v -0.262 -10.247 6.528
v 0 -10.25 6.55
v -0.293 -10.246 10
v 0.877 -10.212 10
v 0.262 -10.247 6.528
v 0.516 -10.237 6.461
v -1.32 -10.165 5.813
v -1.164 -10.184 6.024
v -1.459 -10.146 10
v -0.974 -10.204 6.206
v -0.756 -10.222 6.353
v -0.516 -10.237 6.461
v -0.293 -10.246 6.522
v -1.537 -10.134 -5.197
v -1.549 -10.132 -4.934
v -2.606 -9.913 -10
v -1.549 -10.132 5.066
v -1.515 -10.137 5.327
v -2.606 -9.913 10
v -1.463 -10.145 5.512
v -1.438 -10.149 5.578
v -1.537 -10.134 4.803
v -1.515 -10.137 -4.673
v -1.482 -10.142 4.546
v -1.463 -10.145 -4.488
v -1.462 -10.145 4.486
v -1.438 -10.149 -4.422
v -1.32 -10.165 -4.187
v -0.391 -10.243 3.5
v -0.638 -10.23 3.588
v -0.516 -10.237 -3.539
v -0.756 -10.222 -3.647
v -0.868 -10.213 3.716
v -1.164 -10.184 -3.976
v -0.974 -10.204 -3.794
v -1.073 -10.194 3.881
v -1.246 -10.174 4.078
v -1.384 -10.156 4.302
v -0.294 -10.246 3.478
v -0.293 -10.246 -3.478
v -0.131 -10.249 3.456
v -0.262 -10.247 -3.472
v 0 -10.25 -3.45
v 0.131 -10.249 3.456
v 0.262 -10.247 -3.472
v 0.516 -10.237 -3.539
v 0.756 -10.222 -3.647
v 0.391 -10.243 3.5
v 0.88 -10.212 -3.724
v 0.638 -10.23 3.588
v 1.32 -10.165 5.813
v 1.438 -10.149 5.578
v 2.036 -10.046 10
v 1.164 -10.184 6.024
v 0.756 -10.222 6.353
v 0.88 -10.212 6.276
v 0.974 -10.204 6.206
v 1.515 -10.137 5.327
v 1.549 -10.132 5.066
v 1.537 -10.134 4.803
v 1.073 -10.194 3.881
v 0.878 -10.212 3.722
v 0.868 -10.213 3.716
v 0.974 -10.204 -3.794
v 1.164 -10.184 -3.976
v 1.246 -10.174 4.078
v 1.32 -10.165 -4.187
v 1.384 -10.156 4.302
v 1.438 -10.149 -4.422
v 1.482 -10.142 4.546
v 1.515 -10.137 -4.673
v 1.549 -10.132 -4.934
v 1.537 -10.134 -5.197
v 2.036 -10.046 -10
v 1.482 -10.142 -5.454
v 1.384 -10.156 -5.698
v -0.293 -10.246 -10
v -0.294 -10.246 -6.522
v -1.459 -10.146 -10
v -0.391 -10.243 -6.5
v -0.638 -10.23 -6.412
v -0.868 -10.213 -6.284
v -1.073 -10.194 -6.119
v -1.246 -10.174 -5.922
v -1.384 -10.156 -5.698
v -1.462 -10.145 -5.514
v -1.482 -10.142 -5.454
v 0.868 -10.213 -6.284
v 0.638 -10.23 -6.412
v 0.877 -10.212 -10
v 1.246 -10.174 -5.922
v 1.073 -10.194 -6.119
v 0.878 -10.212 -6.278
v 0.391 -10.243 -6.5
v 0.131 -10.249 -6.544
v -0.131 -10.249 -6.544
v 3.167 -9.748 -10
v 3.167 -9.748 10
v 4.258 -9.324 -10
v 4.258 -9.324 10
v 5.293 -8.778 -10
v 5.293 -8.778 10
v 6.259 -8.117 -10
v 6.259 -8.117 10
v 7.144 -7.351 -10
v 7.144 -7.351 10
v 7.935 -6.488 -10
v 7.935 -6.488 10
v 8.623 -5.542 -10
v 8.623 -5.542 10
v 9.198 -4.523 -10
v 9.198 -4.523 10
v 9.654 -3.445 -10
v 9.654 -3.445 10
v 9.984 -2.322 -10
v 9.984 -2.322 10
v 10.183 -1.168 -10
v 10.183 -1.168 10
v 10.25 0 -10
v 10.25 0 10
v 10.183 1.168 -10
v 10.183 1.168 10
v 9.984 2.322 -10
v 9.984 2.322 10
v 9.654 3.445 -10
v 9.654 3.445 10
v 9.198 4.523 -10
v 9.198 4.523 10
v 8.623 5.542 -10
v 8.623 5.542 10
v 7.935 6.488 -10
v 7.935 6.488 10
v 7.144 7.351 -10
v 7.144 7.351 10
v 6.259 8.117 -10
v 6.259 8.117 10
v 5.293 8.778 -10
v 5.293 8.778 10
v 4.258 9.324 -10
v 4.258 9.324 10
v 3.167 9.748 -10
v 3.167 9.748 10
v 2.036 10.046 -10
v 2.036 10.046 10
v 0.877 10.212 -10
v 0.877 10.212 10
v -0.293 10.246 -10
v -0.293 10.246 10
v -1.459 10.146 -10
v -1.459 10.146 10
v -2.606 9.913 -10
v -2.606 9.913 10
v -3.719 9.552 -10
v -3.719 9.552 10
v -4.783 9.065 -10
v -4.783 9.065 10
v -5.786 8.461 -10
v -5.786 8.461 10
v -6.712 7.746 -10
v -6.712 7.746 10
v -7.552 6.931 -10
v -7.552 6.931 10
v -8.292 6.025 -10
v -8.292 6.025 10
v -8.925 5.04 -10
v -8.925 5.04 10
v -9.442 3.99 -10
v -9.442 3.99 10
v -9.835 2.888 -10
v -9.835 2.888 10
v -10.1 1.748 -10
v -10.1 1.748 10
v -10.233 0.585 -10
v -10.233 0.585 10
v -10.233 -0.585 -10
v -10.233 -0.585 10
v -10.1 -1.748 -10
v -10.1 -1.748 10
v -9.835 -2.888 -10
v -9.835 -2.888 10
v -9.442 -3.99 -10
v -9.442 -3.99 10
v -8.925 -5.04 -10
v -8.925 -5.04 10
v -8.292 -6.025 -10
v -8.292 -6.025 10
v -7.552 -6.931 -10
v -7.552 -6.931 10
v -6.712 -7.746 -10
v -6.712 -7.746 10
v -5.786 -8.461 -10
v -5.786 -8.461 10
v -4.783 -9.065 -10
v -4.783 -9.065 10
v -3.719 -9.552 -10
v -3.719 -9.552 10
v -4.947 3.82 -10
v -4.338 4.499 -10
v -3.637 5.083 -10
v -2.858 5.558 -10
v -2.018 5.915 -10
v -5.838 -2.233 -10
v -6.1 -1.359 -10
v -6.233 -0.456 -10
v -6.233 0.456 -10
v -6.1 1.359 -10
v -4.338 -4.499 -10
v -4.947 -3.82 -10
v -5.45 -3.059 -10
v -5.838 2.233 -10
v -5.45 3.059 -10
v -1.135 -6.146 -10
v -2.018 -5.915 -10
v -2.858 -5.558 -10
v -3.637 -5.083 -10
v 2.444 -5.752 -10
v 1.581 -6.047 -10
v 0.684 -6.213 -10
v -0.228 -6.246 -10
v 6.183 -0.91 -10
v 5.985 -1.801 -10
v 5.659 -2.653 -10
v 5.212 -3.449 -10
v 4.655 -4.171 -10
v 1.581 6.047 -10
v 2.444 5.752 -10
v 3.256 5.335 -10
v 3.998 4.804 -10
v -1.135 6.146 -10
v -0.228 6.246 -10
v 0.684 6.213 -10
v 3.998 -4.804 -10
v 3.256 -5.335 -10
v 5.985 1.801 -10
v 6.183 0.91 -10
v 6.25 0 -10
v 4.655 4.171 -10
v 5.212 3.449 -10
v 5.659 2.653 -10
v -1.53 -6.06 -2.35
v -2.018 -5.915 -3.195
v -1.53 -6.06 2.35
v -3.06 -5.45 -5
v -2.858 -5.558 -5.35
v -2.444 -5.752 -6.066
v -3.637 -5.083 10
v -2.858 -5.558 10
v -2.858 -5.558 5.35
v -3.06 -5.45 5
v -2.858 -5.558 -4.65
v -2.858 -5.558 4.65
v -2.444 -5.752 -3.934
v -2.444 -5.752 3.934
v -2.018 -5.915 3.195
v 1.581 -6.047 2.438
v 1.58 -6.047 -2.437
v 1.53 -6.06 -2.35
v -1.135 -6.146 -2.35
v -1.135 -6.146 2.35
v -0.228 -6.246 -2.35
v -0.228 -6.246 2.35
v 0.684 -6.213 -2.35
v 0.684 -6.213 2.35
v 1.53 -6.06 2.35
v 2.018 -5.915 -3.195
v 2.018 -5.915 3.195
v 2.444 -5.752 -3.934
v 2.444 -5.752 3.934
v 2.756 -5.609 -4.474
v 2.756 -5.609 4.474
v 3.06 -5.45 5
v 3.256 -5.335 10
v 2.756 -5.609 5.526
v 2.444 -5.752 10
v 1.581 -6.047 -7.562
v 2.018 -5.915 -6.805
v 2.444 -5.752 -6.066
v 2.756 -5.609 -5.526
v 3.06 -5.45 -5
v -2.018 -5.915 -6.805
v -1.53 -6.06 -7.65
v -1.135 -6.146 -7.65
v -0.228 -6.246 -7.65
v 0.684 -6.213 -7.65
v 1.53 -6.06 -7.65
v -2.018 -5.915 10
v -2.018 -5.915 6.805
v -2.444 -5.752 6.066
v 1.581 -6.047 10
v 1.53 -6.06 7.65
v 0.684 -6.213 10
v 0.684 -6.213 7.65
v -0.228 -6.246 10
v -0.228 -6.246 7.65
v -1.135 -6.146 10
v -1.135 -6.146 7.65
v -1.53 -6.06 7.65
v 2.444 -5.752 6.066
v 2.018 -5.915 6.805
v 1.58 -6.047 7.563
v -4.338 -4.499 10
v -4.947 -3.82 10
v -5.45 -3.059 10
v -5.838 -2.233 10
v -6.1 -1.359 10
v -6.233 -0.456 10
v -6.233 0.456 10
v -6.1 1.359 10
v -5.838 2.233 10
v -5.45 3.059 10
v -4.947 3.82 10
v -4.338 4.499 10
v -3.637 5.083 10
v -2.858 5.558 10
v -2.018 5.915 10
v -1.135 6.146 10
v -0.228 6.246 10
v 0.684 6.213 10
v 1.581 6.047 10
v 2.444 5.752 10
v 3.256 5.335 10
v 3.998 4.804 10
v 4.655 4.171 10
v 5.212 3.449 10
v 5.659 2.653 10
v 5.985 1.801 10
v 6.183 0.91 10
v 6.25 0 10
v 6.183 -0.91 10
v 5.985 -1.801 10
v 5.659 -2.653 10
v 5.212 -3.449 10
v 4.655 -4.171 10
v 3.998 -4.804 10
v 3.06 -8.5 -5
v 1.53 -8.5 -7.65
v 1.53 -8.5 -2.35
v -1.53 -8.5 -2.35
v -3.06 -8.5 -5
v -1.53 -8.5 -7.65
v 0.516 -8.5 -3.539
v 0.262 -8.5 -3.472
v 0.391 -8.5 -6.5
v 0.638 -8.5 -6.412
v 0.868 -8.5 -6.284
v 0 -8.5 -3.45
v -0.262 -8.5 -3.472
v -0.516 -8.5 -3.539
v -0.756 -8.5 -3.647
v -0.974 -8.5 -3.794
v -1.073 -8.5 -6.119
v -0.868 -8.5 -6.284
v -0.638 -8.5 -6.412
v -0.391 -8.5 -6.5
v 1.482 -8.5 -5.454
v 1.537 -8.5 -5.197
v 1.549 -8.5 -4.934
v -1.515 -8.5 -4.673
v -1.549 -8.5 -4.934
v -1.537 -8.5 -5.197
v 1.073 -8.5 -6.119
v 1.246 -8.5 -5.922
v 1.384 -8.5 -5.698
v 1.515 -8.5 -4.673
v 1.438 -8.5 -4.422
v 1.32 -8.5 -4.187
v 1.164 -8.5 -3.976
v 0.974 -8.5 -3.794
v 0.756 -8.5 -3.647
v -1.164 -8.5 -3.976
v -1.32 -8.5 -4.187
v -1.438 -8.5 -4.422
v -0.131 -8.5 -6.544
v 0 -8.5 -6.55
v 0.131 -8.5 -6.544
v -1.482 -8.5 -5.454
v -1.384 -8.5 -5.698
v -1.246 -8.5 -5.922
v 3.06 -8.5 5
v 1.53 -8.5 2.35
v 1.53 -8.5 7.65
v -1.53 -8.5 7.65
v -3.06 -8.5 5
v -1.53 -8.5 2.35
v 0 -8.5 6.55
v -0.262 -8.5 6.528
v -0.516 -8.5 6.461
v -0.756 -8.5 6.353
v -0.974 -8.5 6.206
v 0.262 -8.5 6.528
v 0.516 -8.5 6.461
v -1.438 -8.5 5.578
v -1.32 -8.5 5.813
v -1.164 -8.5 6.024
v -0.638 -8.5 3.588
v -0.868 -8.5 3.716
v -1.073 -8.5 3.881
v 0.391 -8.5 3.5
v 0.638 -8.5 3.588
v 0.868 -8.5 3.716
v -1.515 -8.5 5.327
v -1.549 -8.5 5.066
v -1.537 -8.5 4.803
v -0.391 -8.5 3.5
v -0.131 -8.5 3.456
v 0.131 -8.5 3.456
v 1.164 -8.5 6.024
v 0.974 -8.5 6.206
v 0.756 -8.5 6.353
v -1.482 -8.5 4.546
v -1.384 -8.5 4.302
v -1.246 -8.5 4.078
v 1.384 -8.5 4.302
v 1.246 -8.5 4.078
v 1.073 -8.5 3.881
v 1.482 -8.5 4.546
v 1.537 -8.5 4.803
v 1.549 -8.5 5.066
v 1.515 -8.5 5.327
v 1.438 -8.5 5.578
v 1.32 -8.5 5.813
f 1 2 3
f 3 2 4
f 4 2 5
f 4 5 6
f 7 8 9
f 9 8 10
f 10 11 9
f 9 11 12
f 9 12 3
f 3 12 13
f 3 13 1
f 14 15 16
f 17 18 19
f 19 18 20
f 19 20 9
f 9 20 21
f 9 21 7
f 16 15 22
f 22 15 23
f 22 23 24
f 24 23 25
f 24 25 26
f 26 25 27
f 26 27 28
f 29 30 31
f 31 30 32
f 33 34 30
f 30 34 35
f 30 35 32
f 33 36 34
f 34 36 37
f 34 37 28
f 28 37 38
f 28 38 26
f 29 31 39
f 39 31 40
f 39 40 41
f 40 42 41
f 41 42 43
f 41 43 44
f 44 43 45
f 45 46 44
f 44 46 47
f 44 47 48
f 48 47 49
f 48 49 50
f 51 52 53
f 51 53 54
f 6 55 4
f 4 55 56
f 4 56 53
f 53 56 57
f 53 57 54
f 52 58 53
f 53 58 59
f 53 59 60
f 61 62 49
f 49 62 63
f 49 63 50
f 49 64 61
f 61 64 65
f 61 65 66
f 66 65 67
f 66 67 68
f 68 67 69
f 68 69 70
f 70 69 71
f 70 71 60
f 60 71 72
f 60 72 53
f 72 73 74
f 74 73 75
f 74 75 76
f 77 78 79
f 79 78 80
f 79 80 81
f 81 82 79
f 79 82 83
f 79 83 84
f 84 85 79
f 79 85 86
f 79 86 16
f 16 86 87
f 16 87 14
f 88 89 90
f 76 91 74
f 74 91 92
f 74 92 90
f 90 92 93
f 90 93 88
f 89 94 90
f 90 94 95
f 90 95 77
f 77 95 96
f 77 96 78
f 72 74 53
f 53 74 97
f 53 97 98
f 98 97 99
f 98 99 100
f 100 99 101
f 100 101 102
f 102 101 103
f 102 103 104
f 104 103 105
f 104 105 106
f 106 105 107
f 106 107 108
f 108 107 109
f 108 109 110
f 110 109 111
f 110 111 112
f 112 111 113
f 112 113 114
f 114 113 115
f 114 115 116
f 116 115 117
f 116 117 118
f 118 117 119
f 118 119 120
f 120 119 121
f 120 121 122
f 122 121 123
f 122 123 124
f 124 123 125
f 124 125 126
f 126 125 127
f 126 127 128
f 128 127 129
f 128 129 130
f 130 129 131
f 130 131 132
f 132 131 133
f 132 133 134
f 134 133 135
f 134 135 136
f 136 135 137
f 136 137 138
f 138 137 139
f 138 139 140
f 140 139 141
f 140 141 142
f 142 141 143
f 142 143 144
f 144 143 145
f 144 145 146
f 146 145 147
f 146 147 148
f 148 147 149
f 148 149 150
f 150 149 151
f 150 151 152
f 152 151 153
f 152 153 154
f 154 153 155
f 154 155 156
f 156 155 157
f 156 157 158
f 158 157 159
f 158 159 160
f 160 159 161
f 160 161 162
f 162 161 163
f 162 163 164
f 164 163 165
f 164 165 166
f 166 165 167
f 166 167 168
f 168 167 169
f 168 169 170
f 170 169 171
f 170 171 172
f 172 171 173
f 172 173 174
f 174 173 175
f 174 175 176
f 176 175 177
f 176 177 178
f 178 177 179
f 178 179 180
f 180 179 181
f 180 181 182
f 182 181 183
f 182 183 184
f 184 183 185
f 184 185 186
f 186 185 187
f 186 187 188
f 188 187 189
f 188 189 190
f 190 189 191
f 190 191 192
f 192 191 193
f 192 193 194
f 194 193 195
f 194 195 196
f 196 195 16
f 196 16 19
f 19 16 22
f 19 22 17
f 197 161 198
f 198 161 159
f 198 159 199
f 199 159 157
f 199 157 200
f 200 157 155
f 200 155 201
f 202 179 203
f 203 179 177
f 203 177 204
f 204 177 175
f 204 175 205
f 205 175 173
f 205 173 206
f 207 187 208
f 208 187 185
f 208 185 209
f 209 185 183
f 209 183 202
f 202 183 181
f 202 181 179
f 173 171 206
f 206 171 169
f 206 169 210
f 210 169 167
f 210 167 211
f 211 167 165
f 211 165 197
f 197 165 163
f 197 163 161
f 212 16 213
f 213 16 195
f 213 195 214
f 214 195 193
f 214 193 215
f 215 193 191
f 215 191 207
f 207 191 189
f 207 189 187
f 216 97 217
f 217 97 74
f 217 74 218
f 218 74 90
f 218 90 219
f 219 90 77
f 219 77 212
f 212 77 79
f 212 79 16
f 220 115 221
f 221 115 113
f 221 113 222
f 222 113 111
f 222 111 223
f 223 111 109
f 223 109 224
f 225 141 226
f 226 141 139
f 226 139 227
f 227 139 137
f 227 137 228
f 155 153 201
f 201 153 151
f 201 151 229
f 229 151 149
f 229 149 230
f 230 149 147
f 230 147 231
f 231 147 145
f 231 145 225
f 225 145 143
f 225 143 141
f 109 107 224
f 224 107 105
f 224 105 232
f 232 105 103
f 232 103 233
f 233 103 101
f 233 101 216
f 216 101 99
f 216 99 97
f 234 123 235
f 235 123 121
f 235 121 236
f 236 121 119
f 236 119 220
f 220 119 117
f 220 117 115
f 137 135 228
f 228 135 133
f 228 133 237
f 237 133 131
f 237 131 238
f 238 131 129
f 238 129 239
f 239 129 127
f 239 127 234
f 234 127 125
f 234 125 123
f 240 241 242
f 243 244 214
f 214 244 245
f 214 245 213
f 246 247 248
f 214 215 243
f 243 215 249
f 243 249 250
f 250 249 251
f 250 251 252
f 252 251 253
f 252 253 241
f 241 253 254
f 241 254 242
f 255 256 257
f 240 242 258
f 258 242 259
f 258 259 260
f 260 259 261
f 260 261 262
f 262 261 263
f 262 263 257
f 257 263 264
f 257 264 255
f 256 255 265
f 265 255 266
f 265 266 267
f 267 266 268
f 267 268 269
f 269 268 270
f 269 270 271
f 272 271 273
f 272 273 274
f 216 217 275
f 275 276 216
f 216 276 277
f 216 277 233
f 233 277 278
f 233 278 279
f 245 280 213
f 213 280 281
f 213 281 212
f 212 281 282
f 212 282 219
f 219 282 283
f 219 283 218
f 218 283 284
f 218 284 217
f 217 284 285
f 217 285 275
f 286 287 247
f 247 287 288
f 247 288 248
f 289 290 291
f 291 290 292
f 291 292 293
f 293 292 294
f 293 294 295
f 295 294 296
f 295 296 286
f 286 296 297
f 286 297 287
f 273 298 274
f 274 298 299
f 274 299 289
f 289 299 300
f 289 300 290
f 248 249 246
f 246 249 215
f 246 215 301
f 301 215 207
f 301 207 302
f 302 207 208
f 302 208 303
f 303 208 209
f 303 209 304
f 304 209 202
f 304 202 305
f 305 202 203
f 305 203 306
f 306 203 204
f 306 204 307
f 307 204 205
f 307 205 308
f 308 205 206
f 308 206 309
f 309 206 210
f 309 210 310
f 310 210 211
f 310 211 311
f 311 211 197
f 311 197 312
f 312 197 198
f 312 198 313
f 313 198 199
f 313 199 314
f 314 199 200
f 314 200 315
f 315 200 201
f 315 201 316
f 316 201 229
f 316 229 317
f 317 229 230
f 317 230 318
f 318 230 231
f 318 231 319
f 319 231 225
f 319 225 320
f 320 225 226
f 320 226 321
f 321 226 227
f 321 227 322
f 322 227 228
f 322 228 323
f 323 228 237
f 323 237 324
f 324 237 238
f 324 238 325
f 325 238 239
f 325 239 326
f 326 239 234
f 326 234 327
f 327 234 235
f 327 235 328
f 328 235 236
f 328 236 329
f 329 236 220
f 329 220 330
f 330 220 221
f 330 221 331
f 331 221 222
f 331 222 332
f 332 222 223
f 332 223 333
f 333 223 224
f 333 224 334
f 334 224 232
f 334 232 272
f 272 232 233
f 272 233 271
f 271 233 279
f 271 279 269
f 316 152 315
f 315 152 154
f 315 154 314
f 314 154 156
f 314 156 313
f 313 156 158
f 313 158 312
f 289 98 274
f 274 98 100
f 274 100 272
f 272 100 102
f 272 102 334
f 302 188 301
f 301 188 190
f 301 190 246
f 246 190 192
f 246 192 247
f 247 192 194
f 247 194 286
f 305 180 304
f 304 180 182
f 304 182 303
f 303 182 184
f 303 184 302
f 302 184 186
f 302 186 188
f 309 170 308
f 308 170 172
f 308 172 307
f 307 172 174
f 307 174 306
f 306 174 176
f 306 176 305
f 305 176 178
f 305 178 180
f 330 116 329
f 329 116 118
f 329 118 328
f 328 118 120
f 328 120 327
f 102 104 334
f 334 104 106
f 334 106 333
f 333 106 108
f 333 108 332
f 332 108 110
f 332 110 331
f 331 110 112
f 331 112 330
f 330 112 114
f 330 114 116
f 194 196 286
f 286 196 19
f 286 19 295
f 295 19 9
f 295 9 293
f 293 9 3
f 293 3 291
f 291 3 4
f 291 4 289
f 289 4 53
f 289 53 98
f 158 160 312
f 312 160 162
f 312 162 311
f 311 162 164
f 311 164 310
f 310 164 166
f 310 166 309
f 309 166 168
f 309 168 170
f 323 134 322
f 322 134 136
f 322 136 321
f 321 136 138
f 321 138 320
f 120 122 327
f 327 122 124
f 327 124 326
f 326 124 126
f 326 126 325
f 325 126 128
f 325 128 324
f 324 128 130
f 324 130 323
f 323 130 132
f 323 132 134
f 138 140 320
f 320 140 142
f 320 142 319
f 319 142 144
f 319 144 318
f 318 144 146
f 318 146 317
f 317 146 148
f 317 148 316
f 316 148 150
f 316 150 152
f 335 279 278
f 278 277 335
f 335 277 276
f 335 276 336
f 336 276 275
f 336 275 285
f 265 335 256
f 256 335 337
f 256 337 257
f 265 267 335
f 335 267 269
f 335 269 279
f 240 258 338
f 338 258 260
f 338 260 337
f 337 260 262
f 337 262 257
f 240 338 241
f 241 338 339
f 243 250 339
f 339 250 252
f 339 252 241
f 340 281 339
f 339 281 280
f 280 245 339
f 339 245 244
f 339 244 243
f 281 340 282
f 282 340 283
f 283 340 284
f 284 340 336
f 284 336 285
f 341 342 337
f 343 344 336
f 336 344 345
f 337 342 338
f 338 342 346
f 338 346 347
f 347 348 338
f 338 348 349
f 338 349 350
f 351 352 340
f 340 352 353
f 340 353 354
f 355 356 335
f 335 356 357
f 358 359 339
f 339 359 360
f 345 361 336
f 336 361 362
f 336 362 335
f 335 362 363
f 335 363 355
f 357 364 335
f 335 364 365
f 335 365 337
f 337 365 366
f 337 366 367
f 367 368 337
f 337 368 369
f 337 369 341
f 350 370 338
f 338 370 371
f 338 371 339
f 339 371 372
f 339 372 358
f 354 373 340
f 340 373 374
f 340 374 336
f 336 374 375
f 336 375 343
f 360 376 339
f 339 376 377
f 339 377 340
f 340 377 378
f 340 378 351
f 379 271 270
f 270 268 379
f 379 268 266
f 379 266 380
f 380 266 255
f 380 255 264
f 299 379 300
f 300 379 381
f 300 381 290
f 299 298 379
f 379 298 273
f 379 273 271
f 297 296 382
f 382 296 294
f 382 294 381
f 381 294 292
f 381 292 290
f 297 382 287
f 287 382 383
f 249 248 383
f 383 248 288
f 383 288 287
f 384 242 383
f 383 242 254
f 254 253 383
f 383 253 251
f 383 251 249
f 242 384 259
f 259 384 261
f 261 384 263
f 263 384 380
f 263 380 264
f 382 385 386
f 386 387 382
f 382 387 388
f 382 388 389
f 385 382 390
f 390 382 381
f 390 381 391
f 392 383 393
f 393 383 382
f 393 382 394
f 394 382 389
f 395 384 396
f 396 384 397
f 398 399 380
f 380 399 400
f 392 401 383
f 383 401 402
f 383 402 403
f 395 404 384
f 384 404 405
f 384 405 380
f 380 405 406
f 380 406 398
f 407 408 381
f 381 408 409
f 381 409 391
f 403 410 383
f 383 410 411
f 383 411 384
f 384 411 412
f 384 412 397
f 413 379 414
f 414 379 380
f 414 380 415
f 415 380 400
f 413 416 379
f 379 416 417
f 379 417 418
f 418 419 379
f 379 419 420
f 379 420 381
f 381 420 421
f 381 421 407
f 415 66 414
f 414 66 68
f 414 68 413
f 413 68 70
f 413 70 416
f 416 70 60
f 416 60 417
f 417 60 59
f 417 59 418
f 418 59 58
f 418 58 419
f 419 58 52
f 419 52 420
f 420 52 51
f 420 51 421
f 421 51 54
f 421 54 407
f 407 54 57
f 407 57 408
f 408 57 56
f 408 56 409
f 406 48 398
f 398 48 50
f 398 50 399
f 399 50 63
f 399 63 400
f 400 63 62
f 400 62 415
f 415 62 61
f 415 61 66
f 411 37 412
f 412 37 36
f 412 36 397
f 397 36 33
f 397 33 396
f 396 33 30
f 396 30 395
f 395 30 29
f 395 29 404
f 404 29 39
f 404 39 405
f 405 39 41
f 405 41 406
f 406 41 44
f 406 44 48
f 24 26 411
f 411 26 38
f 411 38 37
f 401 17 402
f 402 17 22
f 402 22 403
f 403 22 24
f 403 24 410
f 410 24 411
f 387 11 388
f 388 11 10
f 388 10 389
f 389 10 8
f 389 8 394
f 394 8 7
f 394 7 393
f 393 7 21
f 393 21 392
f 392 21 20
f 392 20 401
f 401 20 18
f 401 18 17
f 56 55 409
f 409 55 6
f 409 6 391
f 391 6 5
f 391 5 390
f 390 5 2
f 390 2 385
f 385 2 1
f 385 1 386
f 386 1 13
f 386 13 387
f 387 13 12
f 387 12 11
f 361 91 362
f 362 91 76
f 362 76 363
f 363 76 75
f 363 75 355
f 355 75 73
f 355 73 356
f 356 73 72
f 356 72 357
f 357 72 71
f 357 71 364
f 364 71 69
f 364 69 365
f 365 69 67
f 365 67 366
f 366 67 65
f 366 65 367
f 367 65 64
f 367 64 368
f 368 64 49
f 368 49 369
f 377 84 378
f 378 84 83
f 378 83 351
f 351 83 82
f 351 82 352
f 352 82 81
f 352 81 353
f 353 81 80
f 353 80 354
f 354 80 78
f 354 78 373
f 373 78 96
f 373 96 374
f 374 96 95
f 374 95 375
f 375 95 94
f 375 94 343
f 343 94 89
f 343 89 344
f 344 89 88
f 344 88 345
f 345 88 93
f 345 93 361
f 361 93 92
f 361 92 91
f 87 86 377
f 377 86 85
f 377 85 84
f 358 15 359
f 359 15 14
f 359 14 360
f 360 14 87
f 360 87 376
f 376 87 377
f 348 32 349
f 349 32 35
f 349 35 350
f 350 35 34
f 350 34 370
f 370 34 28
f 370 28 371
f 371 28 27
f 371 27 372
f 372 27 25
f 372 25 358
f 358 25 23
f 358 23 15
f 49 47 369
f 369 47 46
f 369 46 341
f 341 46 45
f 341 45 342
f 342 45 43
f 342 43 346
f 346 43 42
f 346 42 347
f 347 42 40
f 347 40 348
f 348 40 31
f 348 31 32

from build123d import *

# Parameters (mm, degrees)
SALIENTE_EXTRUIR1_DEPTH      = 10
SALIENTE_EXTRUIR1_DEPTH_BACK = 10
CROQUIS1_R                   = 10.25
CROQUIS1_R_2                 = 6.25
CROQUIS2_R                   = 1.55
CORTAR_EXTRUIR1_DEPTH        = 8.5
CROQUIS3_R                   = 1.55
CORTAR_EXTRUIR2_DEPTH        = 28.5


with BuildPart() as part:
    # Croquis1 → Saliente-Extruir1 (new, two sides: drawn at the far end of the back side and taken through both)
    with BuildSketch(Plane.XY.offset(-SALIENTE_EXTRUIR1_DEPTH_BACK)):
        Circle(CROQUIS1_R)
        Circle(CROQUIS1_R_2, mode=Mode.SUBTRACT)
    extrude(amount=SALIENTE_EXTRUIR1_DEPTH + SALIENTE_EXTRUIR1_DEPTH_BACK)

    # Croquis2 → Cortar-Extruir1 (cut)
    # profile 1 of 2: a face of its own
    with BuildSketch(Plane(origin=(0, 0, 0), x_dir=(1, 0, 0), z_dir=(0, 1, 0))):
        Polygon((1.529978213, -2.35), (-1.529978213, -2.35), (-3.059956427, -5), (-1.529978213, -7.65), (1.529978213, -7.65), (3.059956427, -5), align=None)
        with Locations((0, -5)):
            Circle(CROQUIS2_R, mode=Mode.SUBTRACT)
    # profile 2 of 2: a face of its own
    with BuildSketch(Plane(origin=(0, 0, 0), x_dir=(1, 0, 0), z_dir=(0, 1, 0))):
        Polygon((3.059956427, 5), (1.529978213, 2.35), (-1.529978213, 2.35), (-3.059956427, 5), (-1.529978213, 7.65), (1.529978213, 7.65), align=None)
        with Locations((0, 5)):
            Circle(CROQUIS2_R, mode=Mode.SUBTRACT)
    extrude(amount=-CORTAR_EXTRUIR1_DEPTH, mode=Mode.SUBTRACT)

    # Croquis3 → Cortar-Extruir2 (cut)
    with BuildSketch(Plane(origin=(0, 0, 0), x_dir=(1, 0, 0), z_dir=(0, 1, 0))):
        with Locations((0, 5)):
            Circle(CROQUIS3_R)
        with Locations((0, -5)):
            Circle(CROQUIS3_R)
    extrude(amount=-CORTAR_EXTRUIR2_DEPTH, mode=Mode.SUBTRACT)


solid = part.part
